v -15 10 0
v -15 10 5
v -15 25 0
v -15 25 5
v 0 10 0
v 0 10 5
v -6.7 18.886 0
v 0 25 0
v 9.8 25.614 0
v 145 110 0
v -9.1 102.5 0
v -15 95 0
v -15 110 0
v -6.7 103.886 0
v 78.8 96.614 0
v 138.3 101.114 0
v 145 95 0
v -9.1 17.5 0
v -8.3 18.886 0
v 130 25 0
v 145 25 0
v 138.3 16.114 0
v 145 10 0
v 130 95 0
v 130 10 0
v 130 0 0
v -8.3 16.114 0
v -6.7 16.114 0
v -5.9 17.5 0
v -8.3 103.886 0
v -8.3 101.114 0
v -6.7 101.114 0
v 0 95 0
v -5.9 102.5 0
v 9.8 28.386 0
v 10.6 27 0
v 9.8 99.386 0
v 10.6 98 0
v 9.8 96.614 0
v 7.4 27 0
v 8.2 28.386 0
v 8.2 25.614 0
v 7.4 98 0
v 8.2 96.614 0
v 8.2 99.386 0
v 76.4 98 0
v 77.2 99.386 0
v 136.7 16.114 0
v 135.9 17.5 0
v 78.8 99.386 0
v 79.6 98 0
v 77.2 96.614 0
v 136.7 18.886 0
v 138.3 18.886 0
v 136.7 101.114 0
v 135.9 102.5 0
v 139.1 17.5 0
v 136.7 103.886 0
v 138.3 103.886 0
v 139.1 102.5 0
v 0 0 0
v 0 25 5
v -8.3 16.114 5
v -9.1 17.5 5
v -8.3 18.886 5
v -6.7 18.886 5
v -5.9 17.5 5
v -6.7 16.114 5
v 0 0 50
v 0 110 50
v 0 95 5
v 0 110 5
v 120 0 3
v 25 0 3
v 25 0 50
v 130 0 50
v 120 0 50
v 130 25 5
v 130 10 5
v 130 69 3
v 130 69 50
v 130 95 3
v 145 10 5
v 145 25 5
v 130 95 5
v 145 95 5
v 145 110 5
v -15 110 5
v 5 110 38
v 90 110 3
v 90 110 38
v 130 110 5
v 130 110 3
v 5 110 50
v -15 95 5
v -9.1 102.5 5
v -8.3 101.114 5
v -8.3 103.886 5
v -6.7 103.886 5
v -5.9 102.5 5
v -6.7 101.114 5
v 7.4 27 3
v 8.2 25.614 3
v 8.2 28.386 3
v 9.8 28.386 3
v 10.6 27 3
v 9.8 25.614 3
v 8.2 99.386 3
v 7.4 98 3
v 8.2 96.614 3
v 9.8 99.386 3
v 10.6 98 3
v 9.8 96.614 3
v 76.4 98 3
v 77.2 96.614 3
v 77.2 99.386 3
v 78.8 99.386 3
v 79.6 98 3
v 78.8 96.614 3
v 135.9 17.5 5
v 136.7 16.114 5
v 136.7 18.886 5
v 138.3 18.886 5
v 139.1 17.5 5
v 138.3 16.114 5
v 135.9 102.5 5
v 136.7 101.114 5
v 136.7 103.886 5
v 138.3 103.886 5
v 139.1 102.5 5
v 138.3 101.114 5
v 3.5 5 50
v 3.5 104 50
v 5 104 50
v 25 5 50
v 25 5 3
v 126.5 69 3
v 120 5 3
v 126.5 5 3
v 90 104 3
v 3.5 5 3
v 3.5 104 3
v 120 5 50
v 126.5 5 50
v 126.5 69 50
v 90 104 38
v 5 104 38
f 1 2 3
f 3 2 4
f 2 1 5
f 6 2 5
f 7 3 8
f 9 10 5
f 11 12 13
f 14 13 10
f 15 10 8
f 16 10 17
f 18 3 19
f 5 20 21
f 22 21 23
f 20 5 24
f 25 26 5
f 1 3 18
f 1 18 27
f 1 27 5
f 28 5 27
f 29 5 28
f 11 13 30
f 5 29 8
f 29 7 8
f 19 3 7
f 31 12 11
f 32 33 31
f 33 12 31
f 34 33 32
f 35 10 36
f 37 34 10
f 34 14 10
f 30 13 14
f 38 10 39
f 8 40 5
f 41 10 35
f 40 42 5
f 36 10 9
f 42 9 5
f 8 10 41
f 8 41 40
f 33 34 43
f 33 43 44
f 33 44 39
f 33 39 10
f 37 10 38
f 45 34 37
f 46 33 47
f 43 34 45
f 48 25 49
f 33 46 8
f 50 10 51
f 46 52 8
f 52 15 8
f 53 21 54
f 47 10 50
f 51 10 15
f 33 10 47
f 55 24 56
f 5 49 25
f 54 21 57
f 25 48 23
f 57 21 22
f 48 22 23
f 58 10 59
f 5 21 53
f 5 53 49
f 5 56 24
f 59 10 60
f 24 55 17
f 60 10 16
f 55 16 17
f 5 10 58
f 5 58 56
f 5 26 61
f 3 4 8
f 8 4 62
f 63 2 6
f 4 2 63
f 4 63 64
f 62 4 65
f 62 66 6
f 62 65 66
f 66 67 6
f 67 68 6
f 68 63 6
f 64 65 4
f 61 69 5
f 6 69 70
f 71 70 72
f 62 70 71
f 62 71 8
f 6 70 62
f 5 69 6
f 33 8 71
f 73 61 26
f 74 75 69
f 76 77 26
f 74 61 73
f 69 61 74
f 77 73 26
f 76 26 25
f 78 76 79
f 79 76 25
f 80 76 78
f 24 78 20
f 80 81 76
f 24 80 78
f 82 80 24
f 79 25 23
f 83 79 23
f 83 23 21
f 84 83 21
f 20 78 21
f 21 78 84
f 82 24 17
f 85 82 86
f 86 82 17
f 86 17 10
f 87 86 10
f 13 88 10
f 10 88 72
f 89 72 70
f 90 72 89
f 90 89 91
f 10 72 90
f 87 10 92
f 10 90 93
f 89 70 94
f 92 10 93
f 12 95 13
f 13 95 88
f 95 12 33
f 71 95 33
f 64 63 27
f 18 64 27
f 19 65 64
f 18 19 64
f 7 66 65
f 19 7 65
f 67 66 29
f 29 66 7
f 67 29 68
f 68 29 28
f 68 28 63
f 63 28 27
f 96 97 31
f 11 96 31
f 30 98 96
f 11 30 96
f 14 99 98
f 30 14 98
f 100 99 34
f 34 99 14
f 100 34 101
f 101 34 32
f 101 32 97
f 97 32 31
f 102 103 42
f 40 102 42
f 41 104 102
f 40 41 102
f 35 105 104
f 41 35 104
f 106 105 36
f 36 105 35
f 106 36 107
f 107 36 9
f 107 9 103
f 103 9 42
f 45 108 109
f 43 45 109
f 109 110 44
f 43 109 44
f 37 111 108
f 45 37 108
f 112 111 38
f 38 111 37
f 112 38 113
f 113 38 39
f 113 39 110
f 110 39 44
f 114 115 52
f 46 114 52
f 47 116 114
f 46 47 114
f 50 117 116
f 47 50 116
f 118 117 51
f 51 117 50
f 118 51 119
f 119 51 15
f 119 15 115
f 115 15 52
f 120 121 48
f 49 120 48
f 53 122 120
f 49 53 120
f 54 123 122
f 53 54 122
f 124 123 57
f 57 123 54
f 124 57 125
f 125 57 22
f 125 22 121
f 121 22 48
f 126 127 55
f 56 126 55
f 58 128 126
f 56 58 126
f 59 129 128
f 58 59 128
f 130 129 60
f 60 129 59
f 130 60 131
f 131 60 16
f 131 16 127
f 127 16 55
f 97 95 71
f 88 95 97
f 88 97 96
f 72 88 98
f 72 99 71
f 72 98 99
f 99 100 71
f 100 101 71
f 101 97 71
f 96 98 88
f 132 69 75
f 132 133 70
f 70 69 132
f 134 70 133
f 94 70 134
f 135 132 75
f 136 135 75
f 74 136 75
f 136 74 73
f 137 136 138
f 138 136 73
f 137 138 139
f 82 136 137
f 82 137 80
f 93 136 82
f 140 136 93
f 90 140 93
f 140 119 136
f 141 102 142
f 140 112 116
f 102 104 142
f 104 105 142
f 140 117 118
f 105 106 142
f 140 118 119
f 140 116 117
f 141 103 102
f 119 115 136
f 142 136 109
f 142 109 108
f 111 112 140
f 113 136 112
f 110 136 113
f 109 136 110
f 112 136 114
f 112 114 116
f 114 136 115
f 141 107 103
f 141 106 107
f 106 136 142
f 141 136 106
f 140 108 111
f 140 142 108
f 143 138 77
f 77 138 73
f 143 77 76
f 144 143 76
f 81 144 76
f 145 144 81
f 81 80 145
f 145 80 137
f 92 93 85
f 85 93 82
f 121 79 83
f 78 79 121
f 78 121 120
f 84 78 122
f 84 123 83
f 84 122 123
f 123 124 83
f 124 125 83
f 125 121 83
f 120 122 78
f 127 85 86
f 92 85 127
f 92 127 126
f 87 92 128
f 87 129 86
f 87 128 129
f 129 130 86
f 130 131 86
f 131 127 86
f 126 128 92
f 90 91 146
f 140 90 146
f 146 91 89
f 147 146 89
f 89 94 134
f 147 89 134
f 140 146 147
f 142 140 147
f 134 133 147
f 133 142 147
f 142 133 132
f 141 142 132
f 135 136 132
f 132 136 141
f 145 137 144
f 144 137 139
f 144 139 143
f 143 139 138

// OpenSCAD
//design file for Fab-DLP projector Holder 
//part of thew Fab-DLP project https://github.com/fablab-leoben/Fab-dlp
difference () {
union (){
cube ([130,110,50]);
translate ([-15,10,0])cube ([15,15,5]);
translate ([-15,95,0])cube ([15,15,5]);
translate ([130,10,0])cube ([15,15,5]);
translate ([130,95,0])cube ([15,15,5]);
}
union (){
translate ([3.5,5,3]) cube ([123,99,55]);
translate ([25,-1,3]) cube ([95,99,55]);
translate ([90,69,3]) cube ([40,99,55]);
translate ([5,69,38]) cube ([90,99,55]);
translate ([9,98,-5]) cylinder (r=1.6,h=70);
translate ([78,98,-5]) cylinder (r=1.6,h=70);
translate ([9,27,-5]) cylinder (r=1.6,h=70);

translate ([-7.5,17.5,-5]) cylinder (r=1.6,h=70);
translate ([-7.5,102.5,-5]) cylinder (r=1.6,h=70);
translate ([137.5,17.5,-5]) cylinder (r=1.6,h=70);
translate ([137.5,102.5,-5]) cylinder (r=1.6,h=70); 
}

}
